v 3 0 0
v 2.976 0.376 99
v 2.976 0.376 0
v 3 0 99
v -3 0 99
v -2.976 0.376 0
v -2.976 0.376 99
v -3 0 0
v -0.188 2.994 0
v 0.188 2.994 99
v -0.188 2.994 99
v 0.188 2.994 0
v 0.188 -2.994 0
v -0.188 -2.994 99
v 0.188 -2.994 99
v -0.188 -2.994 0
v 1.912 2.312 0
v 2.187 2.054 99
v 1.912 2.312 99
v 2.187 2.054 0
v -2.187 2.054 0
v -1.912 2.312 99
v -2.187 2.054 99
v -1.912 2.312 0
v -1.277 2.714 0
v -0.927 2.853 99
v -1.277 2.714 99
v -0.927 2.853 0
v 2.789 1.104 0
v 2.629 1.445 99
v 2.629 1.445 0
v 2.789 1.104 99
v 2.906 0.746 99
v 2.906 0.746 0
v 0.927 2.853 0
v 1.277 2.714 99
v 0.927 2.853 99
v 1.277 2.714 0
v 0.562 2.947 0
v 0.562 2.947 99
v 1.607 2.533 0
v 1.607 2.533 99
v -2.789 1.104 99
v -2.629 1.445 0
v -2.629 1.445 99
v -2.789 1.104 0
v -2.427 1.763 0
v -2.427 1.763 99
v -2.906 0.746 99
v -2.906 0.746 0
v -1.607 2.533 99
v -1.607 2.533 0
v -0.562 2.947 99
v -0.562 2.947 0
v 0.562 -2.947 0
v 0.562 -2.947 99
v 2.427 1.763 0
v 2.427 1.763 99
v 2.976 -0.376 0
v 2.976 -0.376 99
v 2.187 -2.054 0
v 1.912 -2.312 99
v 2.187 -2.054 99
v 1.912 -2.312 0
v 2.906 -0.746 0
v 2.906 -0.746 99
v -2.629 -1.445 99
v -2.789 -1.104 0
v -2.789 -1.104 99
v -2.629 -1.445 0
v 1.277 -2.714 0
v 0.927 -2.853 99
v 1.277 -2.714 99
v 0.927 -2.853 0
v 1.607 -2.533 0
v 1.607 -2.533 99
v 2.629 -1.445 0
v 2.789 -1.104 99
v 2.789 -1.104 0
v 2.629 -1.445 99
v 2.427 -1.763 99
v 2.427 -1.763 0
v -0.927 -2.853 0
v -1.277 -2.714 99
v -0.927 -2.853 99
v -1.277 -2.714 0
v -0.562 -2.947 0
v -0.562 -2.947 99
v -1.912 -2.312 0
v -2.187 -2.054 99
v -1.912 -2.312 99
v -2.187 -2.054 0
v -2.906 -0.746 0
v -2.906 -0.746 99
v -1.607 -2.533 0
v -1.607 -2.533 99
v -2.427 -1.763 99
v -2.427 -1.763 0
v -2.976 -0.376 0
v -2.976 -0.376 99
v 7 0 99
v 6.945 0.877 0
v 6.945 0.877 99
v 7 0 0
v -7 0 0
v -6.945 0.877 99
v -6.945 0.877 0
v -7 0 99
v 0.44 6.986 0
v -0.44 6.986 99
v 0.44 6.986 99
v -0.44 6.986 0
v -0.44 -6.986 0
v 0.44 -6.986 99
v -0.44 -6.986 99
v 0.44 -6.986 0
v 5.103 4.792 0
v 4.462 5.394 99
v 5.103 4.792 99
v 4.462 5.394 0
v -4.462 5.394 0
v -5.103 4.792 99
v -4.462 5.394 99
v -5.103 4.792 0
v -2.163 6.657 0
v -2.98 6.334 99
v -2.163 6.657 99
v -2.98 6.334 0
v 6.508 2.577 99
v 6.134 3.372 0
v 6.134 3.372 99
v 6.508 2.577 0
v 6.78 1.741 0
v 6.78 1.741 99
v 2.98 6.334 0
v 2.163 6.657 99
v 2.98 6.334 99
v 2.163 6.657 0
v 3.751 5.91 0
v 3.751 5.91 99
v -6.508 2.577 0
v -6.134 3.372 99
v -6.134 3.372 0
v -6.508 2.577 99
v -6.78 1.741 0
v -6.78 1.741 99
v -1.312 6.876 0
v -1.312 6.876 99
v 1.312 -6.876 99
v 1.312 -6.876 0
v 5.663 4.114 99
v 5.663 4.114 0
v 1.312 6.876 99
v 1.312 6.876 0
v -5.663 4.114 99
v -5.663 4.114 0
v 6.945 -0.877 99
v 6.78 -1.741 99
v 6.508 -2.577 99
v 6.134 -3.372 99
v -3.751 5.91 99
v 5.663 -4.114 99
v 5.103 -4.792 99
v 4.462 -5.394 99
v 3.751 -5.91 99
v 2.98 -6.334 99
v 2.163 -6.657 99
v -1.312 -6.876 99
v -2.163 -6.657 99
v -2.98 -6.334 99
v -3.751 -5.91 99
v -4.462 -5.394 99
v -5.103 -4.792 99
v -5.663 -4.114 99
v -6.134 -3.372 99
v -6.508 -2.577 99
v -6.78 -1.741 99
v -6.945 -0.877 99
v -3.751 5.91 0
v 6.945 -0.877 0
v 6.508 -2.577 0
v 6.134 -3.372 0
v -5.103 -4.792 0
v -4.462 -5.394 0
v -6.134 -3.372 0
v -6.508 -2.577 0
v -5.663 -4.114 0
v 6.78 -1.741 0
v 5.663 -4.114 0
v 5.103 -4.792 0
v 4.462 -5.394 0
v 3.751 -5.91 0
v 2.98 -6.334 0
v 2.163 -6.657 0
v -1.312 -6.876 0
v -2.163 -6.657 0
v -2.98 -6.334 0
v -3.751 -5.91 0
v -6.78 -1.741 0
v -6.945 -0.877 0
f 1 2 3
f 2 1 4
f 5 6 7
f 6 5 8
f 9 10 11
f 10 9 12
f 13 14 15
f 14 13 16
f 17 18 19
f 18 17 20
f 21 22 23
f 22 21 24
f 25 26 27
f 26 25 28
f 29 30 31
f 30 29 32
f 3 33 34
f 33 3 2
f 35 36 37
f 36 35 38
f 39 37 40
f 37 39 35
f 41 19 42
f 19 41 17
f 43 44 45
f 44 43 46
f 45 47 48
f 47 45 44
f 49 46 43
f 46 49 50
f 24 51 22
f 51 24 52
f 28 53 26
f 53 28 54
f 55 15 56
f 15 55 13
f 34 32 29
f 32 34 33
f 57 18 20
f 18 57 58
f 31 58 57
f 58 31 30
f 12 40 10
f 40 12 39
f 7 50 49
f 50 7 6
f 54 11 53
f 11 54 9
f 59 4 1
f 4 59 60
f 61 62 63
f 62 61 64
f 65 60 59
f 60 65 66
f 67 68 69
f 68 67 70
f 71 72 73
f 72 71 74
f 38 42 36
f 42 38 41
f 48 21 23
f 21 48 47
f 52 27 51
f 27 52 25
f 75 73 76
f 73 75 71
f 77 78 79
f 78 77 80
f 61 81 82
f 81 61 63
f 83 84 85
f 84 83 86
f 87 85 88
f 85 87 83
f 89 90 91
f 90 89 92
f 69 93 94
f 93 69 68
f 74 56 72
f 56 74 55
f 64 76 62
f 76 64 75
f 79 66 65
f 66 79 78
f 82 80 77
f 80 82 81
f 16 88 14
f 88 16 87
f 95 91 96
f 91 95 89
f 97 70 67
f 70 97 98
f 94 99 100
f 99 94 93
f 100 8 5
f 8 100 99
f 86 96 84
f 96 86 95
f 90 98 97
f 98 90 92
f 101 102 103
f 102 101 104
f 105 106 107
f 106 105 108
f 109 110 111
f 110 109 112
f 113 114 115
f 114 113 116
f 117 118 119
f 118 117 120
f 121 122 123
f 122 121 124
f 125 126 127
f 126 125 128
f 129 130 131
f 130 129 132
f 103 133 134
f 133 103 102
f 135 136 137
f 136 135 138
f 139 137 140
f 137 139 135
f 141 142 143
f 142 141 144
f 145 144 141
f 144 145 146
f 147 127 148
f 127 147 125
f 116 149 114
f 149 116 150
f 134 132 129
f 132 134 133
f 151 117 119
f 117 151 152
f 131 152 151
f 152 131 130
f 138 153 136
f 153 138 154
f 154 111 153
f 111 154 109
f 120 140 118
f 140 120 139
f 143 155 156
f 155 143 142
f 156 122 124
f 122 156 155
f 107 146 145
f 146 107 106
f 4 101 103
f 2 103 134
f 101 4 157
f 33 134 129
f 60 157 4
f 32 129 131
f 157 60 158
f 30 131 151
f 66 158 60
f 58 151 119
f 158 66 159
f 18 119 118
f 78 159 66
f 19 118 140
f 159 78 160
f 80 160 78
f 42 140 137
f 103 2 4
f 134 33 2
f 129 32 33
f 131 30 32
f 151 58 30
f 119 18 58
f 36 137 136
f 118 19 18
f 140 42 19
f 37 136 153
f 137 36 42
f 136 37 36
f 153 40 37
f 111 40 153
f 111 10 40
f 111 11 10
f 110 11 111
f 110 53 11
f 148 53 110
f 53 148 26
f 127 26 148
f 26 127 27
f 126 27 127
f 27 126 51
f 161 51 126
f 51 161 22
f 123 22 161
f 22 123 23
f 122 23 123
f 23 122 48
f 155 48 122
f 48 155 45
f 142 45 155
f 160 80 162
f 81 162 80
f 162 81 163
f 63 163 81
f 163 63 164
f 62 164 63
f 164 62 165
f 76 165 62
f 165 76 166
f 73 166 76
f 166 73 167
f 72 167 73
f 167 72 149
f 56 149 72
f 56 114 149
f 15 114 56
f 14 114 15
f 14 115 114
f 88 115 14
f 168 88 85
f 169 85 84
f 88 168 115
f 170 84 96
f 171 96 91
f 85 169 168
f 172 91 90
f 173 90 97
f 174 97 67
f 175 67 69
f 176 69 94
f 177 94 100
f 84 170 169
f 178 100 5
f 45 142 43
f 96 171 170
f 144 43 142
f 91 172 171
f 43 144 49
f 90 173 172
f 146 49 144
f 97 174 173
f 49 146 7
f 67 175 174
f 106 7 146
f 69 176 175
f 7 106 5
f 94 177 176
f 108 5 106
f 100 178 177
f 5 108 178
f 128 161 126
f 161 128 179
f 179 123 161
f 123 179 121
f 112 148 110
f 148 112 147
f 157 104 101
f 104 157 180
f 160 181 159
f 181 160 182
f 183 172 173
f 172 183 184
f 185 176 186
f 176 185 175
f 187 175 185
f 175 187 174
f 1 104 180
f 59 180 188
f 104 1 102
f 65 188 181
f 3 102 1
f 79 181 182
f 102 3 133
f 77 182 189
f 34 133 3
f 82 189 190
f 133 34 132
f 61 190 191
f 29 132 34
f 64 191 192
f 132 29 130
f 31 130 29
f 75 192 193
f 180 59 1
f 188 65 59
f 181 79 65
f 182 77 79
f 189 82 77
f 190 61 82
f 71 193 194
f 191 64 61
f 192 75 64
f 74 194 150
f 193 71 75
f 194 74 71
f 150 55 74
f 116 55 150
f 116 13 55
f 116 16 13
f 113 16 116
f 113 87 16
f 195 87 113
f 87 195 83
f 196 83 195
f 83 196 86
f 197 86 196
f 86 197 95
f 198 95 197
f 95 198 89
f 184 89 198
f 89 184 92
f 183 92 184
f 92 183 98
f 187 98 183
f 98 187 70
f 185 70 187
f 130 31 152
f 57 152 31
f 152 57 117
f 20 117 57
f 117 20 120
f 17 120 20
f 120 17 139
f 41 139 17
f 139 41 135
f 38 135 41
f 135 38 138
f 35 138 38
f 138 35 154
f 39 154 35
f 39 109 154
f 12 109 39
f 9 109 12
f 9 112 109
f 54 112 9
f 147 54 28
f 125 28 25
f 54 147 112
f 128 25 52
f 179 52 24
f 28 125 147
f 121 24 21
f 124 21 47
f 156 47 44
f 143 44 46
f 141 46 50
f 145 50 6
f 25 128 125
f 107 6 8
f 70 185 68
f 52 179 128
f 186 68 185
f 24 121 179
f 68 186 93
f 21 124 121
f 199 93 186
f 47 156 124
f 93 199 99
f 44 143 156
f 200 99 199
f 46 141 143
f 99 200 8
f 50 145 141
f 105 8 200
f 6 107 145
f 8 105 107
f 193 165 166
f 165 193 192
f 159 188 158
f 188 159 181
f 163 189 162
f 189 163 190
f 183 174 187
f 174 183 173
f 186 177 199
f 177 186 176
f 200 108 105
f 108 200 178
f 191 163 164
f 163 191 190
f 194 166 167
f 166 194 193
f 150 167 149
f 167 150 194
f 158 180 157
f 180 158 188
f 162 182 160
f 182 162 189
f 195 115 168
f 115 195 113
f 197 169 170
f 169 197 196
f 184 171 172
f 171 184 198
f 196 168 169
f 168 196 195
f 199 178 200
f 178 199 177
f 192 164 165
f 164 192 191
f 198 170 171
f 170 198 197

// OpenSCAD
$fn = 50;


difference() {
	union() {
		*color(alpha = 1.0000000000, c = "gray") {
			translate(v = [0, 7, 0]) {
				linear_extrude(height = 1) {
					text(font = "Arial:style=Bold", halign = "center", size = 4.5000000000, text = "COMMENT plate main", valign = "center");
				}
			}
		}
		cylinder(h = 99, r = 7.0000000000);
	}
	union() {
		*color(alpha = 1.0000000000, c = "gray") {
			translate(v = [0, 7, 0]) {
				linear_extrude(height = 1) {
					text(font = "Arial:style=Bold", halign = "center", size = 4.5000000000, text = "COMMENT holes main", valign = "center");
				}
			}
		}
		translate(v = [0, 0, -100]) {
			cylinder(h = 200, r = 3.0000000000);
		}
		translate(v = [0, 0, -100]) {
			cylinder(h = 200, r = 1.5000000000);
		}
	}
}
